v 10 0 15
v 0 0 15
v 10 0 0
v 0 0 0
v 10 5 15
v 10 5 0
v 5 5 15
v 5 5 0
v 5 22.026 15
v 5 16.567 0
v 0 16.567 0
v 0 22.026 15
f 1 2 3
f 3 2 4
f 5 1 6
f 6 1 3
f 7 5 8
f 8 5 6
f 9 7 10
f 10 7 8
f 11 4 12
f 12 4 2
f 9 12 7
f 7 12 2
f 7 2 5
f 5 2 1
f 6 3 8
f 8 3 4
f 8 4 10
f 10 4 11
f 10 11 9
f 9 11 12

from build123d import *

# Parameters (mm, degrees)
BOSS_EXTRUDE1_DEPTH = 15
CUT_EXTRUDE1_DEPTH  = 10


with BuildPart() as part:
    # Sketch1 → Boss-Extrude1 (new body)
    with BuildSketch(Plane.XY):
        Polygon((0, 0), (0, 25), (5, 25), (5, 5), (10, 5), (10, 0), align=None)
    extrude(amount=BOSS_EXTRUDE1_DEPTH)

    # Sketch2 → Cut-Extrude1 (cut)
    with BuildSketch(Plane(origin=(5, 0, 0), x_dir=(0, 0, -1), z_dir=(1, 0, 0))):
        Polygon((-15, 22.026317018), (-18.328083999, 30.478992543), (8.324959991, 29.895957206), (0, 16.566763504), align=None)
    extrude(amount=-CUT_EXTRUDE1_DEPTH, mode=Mode.SUBTRACT)


solid = part.part
